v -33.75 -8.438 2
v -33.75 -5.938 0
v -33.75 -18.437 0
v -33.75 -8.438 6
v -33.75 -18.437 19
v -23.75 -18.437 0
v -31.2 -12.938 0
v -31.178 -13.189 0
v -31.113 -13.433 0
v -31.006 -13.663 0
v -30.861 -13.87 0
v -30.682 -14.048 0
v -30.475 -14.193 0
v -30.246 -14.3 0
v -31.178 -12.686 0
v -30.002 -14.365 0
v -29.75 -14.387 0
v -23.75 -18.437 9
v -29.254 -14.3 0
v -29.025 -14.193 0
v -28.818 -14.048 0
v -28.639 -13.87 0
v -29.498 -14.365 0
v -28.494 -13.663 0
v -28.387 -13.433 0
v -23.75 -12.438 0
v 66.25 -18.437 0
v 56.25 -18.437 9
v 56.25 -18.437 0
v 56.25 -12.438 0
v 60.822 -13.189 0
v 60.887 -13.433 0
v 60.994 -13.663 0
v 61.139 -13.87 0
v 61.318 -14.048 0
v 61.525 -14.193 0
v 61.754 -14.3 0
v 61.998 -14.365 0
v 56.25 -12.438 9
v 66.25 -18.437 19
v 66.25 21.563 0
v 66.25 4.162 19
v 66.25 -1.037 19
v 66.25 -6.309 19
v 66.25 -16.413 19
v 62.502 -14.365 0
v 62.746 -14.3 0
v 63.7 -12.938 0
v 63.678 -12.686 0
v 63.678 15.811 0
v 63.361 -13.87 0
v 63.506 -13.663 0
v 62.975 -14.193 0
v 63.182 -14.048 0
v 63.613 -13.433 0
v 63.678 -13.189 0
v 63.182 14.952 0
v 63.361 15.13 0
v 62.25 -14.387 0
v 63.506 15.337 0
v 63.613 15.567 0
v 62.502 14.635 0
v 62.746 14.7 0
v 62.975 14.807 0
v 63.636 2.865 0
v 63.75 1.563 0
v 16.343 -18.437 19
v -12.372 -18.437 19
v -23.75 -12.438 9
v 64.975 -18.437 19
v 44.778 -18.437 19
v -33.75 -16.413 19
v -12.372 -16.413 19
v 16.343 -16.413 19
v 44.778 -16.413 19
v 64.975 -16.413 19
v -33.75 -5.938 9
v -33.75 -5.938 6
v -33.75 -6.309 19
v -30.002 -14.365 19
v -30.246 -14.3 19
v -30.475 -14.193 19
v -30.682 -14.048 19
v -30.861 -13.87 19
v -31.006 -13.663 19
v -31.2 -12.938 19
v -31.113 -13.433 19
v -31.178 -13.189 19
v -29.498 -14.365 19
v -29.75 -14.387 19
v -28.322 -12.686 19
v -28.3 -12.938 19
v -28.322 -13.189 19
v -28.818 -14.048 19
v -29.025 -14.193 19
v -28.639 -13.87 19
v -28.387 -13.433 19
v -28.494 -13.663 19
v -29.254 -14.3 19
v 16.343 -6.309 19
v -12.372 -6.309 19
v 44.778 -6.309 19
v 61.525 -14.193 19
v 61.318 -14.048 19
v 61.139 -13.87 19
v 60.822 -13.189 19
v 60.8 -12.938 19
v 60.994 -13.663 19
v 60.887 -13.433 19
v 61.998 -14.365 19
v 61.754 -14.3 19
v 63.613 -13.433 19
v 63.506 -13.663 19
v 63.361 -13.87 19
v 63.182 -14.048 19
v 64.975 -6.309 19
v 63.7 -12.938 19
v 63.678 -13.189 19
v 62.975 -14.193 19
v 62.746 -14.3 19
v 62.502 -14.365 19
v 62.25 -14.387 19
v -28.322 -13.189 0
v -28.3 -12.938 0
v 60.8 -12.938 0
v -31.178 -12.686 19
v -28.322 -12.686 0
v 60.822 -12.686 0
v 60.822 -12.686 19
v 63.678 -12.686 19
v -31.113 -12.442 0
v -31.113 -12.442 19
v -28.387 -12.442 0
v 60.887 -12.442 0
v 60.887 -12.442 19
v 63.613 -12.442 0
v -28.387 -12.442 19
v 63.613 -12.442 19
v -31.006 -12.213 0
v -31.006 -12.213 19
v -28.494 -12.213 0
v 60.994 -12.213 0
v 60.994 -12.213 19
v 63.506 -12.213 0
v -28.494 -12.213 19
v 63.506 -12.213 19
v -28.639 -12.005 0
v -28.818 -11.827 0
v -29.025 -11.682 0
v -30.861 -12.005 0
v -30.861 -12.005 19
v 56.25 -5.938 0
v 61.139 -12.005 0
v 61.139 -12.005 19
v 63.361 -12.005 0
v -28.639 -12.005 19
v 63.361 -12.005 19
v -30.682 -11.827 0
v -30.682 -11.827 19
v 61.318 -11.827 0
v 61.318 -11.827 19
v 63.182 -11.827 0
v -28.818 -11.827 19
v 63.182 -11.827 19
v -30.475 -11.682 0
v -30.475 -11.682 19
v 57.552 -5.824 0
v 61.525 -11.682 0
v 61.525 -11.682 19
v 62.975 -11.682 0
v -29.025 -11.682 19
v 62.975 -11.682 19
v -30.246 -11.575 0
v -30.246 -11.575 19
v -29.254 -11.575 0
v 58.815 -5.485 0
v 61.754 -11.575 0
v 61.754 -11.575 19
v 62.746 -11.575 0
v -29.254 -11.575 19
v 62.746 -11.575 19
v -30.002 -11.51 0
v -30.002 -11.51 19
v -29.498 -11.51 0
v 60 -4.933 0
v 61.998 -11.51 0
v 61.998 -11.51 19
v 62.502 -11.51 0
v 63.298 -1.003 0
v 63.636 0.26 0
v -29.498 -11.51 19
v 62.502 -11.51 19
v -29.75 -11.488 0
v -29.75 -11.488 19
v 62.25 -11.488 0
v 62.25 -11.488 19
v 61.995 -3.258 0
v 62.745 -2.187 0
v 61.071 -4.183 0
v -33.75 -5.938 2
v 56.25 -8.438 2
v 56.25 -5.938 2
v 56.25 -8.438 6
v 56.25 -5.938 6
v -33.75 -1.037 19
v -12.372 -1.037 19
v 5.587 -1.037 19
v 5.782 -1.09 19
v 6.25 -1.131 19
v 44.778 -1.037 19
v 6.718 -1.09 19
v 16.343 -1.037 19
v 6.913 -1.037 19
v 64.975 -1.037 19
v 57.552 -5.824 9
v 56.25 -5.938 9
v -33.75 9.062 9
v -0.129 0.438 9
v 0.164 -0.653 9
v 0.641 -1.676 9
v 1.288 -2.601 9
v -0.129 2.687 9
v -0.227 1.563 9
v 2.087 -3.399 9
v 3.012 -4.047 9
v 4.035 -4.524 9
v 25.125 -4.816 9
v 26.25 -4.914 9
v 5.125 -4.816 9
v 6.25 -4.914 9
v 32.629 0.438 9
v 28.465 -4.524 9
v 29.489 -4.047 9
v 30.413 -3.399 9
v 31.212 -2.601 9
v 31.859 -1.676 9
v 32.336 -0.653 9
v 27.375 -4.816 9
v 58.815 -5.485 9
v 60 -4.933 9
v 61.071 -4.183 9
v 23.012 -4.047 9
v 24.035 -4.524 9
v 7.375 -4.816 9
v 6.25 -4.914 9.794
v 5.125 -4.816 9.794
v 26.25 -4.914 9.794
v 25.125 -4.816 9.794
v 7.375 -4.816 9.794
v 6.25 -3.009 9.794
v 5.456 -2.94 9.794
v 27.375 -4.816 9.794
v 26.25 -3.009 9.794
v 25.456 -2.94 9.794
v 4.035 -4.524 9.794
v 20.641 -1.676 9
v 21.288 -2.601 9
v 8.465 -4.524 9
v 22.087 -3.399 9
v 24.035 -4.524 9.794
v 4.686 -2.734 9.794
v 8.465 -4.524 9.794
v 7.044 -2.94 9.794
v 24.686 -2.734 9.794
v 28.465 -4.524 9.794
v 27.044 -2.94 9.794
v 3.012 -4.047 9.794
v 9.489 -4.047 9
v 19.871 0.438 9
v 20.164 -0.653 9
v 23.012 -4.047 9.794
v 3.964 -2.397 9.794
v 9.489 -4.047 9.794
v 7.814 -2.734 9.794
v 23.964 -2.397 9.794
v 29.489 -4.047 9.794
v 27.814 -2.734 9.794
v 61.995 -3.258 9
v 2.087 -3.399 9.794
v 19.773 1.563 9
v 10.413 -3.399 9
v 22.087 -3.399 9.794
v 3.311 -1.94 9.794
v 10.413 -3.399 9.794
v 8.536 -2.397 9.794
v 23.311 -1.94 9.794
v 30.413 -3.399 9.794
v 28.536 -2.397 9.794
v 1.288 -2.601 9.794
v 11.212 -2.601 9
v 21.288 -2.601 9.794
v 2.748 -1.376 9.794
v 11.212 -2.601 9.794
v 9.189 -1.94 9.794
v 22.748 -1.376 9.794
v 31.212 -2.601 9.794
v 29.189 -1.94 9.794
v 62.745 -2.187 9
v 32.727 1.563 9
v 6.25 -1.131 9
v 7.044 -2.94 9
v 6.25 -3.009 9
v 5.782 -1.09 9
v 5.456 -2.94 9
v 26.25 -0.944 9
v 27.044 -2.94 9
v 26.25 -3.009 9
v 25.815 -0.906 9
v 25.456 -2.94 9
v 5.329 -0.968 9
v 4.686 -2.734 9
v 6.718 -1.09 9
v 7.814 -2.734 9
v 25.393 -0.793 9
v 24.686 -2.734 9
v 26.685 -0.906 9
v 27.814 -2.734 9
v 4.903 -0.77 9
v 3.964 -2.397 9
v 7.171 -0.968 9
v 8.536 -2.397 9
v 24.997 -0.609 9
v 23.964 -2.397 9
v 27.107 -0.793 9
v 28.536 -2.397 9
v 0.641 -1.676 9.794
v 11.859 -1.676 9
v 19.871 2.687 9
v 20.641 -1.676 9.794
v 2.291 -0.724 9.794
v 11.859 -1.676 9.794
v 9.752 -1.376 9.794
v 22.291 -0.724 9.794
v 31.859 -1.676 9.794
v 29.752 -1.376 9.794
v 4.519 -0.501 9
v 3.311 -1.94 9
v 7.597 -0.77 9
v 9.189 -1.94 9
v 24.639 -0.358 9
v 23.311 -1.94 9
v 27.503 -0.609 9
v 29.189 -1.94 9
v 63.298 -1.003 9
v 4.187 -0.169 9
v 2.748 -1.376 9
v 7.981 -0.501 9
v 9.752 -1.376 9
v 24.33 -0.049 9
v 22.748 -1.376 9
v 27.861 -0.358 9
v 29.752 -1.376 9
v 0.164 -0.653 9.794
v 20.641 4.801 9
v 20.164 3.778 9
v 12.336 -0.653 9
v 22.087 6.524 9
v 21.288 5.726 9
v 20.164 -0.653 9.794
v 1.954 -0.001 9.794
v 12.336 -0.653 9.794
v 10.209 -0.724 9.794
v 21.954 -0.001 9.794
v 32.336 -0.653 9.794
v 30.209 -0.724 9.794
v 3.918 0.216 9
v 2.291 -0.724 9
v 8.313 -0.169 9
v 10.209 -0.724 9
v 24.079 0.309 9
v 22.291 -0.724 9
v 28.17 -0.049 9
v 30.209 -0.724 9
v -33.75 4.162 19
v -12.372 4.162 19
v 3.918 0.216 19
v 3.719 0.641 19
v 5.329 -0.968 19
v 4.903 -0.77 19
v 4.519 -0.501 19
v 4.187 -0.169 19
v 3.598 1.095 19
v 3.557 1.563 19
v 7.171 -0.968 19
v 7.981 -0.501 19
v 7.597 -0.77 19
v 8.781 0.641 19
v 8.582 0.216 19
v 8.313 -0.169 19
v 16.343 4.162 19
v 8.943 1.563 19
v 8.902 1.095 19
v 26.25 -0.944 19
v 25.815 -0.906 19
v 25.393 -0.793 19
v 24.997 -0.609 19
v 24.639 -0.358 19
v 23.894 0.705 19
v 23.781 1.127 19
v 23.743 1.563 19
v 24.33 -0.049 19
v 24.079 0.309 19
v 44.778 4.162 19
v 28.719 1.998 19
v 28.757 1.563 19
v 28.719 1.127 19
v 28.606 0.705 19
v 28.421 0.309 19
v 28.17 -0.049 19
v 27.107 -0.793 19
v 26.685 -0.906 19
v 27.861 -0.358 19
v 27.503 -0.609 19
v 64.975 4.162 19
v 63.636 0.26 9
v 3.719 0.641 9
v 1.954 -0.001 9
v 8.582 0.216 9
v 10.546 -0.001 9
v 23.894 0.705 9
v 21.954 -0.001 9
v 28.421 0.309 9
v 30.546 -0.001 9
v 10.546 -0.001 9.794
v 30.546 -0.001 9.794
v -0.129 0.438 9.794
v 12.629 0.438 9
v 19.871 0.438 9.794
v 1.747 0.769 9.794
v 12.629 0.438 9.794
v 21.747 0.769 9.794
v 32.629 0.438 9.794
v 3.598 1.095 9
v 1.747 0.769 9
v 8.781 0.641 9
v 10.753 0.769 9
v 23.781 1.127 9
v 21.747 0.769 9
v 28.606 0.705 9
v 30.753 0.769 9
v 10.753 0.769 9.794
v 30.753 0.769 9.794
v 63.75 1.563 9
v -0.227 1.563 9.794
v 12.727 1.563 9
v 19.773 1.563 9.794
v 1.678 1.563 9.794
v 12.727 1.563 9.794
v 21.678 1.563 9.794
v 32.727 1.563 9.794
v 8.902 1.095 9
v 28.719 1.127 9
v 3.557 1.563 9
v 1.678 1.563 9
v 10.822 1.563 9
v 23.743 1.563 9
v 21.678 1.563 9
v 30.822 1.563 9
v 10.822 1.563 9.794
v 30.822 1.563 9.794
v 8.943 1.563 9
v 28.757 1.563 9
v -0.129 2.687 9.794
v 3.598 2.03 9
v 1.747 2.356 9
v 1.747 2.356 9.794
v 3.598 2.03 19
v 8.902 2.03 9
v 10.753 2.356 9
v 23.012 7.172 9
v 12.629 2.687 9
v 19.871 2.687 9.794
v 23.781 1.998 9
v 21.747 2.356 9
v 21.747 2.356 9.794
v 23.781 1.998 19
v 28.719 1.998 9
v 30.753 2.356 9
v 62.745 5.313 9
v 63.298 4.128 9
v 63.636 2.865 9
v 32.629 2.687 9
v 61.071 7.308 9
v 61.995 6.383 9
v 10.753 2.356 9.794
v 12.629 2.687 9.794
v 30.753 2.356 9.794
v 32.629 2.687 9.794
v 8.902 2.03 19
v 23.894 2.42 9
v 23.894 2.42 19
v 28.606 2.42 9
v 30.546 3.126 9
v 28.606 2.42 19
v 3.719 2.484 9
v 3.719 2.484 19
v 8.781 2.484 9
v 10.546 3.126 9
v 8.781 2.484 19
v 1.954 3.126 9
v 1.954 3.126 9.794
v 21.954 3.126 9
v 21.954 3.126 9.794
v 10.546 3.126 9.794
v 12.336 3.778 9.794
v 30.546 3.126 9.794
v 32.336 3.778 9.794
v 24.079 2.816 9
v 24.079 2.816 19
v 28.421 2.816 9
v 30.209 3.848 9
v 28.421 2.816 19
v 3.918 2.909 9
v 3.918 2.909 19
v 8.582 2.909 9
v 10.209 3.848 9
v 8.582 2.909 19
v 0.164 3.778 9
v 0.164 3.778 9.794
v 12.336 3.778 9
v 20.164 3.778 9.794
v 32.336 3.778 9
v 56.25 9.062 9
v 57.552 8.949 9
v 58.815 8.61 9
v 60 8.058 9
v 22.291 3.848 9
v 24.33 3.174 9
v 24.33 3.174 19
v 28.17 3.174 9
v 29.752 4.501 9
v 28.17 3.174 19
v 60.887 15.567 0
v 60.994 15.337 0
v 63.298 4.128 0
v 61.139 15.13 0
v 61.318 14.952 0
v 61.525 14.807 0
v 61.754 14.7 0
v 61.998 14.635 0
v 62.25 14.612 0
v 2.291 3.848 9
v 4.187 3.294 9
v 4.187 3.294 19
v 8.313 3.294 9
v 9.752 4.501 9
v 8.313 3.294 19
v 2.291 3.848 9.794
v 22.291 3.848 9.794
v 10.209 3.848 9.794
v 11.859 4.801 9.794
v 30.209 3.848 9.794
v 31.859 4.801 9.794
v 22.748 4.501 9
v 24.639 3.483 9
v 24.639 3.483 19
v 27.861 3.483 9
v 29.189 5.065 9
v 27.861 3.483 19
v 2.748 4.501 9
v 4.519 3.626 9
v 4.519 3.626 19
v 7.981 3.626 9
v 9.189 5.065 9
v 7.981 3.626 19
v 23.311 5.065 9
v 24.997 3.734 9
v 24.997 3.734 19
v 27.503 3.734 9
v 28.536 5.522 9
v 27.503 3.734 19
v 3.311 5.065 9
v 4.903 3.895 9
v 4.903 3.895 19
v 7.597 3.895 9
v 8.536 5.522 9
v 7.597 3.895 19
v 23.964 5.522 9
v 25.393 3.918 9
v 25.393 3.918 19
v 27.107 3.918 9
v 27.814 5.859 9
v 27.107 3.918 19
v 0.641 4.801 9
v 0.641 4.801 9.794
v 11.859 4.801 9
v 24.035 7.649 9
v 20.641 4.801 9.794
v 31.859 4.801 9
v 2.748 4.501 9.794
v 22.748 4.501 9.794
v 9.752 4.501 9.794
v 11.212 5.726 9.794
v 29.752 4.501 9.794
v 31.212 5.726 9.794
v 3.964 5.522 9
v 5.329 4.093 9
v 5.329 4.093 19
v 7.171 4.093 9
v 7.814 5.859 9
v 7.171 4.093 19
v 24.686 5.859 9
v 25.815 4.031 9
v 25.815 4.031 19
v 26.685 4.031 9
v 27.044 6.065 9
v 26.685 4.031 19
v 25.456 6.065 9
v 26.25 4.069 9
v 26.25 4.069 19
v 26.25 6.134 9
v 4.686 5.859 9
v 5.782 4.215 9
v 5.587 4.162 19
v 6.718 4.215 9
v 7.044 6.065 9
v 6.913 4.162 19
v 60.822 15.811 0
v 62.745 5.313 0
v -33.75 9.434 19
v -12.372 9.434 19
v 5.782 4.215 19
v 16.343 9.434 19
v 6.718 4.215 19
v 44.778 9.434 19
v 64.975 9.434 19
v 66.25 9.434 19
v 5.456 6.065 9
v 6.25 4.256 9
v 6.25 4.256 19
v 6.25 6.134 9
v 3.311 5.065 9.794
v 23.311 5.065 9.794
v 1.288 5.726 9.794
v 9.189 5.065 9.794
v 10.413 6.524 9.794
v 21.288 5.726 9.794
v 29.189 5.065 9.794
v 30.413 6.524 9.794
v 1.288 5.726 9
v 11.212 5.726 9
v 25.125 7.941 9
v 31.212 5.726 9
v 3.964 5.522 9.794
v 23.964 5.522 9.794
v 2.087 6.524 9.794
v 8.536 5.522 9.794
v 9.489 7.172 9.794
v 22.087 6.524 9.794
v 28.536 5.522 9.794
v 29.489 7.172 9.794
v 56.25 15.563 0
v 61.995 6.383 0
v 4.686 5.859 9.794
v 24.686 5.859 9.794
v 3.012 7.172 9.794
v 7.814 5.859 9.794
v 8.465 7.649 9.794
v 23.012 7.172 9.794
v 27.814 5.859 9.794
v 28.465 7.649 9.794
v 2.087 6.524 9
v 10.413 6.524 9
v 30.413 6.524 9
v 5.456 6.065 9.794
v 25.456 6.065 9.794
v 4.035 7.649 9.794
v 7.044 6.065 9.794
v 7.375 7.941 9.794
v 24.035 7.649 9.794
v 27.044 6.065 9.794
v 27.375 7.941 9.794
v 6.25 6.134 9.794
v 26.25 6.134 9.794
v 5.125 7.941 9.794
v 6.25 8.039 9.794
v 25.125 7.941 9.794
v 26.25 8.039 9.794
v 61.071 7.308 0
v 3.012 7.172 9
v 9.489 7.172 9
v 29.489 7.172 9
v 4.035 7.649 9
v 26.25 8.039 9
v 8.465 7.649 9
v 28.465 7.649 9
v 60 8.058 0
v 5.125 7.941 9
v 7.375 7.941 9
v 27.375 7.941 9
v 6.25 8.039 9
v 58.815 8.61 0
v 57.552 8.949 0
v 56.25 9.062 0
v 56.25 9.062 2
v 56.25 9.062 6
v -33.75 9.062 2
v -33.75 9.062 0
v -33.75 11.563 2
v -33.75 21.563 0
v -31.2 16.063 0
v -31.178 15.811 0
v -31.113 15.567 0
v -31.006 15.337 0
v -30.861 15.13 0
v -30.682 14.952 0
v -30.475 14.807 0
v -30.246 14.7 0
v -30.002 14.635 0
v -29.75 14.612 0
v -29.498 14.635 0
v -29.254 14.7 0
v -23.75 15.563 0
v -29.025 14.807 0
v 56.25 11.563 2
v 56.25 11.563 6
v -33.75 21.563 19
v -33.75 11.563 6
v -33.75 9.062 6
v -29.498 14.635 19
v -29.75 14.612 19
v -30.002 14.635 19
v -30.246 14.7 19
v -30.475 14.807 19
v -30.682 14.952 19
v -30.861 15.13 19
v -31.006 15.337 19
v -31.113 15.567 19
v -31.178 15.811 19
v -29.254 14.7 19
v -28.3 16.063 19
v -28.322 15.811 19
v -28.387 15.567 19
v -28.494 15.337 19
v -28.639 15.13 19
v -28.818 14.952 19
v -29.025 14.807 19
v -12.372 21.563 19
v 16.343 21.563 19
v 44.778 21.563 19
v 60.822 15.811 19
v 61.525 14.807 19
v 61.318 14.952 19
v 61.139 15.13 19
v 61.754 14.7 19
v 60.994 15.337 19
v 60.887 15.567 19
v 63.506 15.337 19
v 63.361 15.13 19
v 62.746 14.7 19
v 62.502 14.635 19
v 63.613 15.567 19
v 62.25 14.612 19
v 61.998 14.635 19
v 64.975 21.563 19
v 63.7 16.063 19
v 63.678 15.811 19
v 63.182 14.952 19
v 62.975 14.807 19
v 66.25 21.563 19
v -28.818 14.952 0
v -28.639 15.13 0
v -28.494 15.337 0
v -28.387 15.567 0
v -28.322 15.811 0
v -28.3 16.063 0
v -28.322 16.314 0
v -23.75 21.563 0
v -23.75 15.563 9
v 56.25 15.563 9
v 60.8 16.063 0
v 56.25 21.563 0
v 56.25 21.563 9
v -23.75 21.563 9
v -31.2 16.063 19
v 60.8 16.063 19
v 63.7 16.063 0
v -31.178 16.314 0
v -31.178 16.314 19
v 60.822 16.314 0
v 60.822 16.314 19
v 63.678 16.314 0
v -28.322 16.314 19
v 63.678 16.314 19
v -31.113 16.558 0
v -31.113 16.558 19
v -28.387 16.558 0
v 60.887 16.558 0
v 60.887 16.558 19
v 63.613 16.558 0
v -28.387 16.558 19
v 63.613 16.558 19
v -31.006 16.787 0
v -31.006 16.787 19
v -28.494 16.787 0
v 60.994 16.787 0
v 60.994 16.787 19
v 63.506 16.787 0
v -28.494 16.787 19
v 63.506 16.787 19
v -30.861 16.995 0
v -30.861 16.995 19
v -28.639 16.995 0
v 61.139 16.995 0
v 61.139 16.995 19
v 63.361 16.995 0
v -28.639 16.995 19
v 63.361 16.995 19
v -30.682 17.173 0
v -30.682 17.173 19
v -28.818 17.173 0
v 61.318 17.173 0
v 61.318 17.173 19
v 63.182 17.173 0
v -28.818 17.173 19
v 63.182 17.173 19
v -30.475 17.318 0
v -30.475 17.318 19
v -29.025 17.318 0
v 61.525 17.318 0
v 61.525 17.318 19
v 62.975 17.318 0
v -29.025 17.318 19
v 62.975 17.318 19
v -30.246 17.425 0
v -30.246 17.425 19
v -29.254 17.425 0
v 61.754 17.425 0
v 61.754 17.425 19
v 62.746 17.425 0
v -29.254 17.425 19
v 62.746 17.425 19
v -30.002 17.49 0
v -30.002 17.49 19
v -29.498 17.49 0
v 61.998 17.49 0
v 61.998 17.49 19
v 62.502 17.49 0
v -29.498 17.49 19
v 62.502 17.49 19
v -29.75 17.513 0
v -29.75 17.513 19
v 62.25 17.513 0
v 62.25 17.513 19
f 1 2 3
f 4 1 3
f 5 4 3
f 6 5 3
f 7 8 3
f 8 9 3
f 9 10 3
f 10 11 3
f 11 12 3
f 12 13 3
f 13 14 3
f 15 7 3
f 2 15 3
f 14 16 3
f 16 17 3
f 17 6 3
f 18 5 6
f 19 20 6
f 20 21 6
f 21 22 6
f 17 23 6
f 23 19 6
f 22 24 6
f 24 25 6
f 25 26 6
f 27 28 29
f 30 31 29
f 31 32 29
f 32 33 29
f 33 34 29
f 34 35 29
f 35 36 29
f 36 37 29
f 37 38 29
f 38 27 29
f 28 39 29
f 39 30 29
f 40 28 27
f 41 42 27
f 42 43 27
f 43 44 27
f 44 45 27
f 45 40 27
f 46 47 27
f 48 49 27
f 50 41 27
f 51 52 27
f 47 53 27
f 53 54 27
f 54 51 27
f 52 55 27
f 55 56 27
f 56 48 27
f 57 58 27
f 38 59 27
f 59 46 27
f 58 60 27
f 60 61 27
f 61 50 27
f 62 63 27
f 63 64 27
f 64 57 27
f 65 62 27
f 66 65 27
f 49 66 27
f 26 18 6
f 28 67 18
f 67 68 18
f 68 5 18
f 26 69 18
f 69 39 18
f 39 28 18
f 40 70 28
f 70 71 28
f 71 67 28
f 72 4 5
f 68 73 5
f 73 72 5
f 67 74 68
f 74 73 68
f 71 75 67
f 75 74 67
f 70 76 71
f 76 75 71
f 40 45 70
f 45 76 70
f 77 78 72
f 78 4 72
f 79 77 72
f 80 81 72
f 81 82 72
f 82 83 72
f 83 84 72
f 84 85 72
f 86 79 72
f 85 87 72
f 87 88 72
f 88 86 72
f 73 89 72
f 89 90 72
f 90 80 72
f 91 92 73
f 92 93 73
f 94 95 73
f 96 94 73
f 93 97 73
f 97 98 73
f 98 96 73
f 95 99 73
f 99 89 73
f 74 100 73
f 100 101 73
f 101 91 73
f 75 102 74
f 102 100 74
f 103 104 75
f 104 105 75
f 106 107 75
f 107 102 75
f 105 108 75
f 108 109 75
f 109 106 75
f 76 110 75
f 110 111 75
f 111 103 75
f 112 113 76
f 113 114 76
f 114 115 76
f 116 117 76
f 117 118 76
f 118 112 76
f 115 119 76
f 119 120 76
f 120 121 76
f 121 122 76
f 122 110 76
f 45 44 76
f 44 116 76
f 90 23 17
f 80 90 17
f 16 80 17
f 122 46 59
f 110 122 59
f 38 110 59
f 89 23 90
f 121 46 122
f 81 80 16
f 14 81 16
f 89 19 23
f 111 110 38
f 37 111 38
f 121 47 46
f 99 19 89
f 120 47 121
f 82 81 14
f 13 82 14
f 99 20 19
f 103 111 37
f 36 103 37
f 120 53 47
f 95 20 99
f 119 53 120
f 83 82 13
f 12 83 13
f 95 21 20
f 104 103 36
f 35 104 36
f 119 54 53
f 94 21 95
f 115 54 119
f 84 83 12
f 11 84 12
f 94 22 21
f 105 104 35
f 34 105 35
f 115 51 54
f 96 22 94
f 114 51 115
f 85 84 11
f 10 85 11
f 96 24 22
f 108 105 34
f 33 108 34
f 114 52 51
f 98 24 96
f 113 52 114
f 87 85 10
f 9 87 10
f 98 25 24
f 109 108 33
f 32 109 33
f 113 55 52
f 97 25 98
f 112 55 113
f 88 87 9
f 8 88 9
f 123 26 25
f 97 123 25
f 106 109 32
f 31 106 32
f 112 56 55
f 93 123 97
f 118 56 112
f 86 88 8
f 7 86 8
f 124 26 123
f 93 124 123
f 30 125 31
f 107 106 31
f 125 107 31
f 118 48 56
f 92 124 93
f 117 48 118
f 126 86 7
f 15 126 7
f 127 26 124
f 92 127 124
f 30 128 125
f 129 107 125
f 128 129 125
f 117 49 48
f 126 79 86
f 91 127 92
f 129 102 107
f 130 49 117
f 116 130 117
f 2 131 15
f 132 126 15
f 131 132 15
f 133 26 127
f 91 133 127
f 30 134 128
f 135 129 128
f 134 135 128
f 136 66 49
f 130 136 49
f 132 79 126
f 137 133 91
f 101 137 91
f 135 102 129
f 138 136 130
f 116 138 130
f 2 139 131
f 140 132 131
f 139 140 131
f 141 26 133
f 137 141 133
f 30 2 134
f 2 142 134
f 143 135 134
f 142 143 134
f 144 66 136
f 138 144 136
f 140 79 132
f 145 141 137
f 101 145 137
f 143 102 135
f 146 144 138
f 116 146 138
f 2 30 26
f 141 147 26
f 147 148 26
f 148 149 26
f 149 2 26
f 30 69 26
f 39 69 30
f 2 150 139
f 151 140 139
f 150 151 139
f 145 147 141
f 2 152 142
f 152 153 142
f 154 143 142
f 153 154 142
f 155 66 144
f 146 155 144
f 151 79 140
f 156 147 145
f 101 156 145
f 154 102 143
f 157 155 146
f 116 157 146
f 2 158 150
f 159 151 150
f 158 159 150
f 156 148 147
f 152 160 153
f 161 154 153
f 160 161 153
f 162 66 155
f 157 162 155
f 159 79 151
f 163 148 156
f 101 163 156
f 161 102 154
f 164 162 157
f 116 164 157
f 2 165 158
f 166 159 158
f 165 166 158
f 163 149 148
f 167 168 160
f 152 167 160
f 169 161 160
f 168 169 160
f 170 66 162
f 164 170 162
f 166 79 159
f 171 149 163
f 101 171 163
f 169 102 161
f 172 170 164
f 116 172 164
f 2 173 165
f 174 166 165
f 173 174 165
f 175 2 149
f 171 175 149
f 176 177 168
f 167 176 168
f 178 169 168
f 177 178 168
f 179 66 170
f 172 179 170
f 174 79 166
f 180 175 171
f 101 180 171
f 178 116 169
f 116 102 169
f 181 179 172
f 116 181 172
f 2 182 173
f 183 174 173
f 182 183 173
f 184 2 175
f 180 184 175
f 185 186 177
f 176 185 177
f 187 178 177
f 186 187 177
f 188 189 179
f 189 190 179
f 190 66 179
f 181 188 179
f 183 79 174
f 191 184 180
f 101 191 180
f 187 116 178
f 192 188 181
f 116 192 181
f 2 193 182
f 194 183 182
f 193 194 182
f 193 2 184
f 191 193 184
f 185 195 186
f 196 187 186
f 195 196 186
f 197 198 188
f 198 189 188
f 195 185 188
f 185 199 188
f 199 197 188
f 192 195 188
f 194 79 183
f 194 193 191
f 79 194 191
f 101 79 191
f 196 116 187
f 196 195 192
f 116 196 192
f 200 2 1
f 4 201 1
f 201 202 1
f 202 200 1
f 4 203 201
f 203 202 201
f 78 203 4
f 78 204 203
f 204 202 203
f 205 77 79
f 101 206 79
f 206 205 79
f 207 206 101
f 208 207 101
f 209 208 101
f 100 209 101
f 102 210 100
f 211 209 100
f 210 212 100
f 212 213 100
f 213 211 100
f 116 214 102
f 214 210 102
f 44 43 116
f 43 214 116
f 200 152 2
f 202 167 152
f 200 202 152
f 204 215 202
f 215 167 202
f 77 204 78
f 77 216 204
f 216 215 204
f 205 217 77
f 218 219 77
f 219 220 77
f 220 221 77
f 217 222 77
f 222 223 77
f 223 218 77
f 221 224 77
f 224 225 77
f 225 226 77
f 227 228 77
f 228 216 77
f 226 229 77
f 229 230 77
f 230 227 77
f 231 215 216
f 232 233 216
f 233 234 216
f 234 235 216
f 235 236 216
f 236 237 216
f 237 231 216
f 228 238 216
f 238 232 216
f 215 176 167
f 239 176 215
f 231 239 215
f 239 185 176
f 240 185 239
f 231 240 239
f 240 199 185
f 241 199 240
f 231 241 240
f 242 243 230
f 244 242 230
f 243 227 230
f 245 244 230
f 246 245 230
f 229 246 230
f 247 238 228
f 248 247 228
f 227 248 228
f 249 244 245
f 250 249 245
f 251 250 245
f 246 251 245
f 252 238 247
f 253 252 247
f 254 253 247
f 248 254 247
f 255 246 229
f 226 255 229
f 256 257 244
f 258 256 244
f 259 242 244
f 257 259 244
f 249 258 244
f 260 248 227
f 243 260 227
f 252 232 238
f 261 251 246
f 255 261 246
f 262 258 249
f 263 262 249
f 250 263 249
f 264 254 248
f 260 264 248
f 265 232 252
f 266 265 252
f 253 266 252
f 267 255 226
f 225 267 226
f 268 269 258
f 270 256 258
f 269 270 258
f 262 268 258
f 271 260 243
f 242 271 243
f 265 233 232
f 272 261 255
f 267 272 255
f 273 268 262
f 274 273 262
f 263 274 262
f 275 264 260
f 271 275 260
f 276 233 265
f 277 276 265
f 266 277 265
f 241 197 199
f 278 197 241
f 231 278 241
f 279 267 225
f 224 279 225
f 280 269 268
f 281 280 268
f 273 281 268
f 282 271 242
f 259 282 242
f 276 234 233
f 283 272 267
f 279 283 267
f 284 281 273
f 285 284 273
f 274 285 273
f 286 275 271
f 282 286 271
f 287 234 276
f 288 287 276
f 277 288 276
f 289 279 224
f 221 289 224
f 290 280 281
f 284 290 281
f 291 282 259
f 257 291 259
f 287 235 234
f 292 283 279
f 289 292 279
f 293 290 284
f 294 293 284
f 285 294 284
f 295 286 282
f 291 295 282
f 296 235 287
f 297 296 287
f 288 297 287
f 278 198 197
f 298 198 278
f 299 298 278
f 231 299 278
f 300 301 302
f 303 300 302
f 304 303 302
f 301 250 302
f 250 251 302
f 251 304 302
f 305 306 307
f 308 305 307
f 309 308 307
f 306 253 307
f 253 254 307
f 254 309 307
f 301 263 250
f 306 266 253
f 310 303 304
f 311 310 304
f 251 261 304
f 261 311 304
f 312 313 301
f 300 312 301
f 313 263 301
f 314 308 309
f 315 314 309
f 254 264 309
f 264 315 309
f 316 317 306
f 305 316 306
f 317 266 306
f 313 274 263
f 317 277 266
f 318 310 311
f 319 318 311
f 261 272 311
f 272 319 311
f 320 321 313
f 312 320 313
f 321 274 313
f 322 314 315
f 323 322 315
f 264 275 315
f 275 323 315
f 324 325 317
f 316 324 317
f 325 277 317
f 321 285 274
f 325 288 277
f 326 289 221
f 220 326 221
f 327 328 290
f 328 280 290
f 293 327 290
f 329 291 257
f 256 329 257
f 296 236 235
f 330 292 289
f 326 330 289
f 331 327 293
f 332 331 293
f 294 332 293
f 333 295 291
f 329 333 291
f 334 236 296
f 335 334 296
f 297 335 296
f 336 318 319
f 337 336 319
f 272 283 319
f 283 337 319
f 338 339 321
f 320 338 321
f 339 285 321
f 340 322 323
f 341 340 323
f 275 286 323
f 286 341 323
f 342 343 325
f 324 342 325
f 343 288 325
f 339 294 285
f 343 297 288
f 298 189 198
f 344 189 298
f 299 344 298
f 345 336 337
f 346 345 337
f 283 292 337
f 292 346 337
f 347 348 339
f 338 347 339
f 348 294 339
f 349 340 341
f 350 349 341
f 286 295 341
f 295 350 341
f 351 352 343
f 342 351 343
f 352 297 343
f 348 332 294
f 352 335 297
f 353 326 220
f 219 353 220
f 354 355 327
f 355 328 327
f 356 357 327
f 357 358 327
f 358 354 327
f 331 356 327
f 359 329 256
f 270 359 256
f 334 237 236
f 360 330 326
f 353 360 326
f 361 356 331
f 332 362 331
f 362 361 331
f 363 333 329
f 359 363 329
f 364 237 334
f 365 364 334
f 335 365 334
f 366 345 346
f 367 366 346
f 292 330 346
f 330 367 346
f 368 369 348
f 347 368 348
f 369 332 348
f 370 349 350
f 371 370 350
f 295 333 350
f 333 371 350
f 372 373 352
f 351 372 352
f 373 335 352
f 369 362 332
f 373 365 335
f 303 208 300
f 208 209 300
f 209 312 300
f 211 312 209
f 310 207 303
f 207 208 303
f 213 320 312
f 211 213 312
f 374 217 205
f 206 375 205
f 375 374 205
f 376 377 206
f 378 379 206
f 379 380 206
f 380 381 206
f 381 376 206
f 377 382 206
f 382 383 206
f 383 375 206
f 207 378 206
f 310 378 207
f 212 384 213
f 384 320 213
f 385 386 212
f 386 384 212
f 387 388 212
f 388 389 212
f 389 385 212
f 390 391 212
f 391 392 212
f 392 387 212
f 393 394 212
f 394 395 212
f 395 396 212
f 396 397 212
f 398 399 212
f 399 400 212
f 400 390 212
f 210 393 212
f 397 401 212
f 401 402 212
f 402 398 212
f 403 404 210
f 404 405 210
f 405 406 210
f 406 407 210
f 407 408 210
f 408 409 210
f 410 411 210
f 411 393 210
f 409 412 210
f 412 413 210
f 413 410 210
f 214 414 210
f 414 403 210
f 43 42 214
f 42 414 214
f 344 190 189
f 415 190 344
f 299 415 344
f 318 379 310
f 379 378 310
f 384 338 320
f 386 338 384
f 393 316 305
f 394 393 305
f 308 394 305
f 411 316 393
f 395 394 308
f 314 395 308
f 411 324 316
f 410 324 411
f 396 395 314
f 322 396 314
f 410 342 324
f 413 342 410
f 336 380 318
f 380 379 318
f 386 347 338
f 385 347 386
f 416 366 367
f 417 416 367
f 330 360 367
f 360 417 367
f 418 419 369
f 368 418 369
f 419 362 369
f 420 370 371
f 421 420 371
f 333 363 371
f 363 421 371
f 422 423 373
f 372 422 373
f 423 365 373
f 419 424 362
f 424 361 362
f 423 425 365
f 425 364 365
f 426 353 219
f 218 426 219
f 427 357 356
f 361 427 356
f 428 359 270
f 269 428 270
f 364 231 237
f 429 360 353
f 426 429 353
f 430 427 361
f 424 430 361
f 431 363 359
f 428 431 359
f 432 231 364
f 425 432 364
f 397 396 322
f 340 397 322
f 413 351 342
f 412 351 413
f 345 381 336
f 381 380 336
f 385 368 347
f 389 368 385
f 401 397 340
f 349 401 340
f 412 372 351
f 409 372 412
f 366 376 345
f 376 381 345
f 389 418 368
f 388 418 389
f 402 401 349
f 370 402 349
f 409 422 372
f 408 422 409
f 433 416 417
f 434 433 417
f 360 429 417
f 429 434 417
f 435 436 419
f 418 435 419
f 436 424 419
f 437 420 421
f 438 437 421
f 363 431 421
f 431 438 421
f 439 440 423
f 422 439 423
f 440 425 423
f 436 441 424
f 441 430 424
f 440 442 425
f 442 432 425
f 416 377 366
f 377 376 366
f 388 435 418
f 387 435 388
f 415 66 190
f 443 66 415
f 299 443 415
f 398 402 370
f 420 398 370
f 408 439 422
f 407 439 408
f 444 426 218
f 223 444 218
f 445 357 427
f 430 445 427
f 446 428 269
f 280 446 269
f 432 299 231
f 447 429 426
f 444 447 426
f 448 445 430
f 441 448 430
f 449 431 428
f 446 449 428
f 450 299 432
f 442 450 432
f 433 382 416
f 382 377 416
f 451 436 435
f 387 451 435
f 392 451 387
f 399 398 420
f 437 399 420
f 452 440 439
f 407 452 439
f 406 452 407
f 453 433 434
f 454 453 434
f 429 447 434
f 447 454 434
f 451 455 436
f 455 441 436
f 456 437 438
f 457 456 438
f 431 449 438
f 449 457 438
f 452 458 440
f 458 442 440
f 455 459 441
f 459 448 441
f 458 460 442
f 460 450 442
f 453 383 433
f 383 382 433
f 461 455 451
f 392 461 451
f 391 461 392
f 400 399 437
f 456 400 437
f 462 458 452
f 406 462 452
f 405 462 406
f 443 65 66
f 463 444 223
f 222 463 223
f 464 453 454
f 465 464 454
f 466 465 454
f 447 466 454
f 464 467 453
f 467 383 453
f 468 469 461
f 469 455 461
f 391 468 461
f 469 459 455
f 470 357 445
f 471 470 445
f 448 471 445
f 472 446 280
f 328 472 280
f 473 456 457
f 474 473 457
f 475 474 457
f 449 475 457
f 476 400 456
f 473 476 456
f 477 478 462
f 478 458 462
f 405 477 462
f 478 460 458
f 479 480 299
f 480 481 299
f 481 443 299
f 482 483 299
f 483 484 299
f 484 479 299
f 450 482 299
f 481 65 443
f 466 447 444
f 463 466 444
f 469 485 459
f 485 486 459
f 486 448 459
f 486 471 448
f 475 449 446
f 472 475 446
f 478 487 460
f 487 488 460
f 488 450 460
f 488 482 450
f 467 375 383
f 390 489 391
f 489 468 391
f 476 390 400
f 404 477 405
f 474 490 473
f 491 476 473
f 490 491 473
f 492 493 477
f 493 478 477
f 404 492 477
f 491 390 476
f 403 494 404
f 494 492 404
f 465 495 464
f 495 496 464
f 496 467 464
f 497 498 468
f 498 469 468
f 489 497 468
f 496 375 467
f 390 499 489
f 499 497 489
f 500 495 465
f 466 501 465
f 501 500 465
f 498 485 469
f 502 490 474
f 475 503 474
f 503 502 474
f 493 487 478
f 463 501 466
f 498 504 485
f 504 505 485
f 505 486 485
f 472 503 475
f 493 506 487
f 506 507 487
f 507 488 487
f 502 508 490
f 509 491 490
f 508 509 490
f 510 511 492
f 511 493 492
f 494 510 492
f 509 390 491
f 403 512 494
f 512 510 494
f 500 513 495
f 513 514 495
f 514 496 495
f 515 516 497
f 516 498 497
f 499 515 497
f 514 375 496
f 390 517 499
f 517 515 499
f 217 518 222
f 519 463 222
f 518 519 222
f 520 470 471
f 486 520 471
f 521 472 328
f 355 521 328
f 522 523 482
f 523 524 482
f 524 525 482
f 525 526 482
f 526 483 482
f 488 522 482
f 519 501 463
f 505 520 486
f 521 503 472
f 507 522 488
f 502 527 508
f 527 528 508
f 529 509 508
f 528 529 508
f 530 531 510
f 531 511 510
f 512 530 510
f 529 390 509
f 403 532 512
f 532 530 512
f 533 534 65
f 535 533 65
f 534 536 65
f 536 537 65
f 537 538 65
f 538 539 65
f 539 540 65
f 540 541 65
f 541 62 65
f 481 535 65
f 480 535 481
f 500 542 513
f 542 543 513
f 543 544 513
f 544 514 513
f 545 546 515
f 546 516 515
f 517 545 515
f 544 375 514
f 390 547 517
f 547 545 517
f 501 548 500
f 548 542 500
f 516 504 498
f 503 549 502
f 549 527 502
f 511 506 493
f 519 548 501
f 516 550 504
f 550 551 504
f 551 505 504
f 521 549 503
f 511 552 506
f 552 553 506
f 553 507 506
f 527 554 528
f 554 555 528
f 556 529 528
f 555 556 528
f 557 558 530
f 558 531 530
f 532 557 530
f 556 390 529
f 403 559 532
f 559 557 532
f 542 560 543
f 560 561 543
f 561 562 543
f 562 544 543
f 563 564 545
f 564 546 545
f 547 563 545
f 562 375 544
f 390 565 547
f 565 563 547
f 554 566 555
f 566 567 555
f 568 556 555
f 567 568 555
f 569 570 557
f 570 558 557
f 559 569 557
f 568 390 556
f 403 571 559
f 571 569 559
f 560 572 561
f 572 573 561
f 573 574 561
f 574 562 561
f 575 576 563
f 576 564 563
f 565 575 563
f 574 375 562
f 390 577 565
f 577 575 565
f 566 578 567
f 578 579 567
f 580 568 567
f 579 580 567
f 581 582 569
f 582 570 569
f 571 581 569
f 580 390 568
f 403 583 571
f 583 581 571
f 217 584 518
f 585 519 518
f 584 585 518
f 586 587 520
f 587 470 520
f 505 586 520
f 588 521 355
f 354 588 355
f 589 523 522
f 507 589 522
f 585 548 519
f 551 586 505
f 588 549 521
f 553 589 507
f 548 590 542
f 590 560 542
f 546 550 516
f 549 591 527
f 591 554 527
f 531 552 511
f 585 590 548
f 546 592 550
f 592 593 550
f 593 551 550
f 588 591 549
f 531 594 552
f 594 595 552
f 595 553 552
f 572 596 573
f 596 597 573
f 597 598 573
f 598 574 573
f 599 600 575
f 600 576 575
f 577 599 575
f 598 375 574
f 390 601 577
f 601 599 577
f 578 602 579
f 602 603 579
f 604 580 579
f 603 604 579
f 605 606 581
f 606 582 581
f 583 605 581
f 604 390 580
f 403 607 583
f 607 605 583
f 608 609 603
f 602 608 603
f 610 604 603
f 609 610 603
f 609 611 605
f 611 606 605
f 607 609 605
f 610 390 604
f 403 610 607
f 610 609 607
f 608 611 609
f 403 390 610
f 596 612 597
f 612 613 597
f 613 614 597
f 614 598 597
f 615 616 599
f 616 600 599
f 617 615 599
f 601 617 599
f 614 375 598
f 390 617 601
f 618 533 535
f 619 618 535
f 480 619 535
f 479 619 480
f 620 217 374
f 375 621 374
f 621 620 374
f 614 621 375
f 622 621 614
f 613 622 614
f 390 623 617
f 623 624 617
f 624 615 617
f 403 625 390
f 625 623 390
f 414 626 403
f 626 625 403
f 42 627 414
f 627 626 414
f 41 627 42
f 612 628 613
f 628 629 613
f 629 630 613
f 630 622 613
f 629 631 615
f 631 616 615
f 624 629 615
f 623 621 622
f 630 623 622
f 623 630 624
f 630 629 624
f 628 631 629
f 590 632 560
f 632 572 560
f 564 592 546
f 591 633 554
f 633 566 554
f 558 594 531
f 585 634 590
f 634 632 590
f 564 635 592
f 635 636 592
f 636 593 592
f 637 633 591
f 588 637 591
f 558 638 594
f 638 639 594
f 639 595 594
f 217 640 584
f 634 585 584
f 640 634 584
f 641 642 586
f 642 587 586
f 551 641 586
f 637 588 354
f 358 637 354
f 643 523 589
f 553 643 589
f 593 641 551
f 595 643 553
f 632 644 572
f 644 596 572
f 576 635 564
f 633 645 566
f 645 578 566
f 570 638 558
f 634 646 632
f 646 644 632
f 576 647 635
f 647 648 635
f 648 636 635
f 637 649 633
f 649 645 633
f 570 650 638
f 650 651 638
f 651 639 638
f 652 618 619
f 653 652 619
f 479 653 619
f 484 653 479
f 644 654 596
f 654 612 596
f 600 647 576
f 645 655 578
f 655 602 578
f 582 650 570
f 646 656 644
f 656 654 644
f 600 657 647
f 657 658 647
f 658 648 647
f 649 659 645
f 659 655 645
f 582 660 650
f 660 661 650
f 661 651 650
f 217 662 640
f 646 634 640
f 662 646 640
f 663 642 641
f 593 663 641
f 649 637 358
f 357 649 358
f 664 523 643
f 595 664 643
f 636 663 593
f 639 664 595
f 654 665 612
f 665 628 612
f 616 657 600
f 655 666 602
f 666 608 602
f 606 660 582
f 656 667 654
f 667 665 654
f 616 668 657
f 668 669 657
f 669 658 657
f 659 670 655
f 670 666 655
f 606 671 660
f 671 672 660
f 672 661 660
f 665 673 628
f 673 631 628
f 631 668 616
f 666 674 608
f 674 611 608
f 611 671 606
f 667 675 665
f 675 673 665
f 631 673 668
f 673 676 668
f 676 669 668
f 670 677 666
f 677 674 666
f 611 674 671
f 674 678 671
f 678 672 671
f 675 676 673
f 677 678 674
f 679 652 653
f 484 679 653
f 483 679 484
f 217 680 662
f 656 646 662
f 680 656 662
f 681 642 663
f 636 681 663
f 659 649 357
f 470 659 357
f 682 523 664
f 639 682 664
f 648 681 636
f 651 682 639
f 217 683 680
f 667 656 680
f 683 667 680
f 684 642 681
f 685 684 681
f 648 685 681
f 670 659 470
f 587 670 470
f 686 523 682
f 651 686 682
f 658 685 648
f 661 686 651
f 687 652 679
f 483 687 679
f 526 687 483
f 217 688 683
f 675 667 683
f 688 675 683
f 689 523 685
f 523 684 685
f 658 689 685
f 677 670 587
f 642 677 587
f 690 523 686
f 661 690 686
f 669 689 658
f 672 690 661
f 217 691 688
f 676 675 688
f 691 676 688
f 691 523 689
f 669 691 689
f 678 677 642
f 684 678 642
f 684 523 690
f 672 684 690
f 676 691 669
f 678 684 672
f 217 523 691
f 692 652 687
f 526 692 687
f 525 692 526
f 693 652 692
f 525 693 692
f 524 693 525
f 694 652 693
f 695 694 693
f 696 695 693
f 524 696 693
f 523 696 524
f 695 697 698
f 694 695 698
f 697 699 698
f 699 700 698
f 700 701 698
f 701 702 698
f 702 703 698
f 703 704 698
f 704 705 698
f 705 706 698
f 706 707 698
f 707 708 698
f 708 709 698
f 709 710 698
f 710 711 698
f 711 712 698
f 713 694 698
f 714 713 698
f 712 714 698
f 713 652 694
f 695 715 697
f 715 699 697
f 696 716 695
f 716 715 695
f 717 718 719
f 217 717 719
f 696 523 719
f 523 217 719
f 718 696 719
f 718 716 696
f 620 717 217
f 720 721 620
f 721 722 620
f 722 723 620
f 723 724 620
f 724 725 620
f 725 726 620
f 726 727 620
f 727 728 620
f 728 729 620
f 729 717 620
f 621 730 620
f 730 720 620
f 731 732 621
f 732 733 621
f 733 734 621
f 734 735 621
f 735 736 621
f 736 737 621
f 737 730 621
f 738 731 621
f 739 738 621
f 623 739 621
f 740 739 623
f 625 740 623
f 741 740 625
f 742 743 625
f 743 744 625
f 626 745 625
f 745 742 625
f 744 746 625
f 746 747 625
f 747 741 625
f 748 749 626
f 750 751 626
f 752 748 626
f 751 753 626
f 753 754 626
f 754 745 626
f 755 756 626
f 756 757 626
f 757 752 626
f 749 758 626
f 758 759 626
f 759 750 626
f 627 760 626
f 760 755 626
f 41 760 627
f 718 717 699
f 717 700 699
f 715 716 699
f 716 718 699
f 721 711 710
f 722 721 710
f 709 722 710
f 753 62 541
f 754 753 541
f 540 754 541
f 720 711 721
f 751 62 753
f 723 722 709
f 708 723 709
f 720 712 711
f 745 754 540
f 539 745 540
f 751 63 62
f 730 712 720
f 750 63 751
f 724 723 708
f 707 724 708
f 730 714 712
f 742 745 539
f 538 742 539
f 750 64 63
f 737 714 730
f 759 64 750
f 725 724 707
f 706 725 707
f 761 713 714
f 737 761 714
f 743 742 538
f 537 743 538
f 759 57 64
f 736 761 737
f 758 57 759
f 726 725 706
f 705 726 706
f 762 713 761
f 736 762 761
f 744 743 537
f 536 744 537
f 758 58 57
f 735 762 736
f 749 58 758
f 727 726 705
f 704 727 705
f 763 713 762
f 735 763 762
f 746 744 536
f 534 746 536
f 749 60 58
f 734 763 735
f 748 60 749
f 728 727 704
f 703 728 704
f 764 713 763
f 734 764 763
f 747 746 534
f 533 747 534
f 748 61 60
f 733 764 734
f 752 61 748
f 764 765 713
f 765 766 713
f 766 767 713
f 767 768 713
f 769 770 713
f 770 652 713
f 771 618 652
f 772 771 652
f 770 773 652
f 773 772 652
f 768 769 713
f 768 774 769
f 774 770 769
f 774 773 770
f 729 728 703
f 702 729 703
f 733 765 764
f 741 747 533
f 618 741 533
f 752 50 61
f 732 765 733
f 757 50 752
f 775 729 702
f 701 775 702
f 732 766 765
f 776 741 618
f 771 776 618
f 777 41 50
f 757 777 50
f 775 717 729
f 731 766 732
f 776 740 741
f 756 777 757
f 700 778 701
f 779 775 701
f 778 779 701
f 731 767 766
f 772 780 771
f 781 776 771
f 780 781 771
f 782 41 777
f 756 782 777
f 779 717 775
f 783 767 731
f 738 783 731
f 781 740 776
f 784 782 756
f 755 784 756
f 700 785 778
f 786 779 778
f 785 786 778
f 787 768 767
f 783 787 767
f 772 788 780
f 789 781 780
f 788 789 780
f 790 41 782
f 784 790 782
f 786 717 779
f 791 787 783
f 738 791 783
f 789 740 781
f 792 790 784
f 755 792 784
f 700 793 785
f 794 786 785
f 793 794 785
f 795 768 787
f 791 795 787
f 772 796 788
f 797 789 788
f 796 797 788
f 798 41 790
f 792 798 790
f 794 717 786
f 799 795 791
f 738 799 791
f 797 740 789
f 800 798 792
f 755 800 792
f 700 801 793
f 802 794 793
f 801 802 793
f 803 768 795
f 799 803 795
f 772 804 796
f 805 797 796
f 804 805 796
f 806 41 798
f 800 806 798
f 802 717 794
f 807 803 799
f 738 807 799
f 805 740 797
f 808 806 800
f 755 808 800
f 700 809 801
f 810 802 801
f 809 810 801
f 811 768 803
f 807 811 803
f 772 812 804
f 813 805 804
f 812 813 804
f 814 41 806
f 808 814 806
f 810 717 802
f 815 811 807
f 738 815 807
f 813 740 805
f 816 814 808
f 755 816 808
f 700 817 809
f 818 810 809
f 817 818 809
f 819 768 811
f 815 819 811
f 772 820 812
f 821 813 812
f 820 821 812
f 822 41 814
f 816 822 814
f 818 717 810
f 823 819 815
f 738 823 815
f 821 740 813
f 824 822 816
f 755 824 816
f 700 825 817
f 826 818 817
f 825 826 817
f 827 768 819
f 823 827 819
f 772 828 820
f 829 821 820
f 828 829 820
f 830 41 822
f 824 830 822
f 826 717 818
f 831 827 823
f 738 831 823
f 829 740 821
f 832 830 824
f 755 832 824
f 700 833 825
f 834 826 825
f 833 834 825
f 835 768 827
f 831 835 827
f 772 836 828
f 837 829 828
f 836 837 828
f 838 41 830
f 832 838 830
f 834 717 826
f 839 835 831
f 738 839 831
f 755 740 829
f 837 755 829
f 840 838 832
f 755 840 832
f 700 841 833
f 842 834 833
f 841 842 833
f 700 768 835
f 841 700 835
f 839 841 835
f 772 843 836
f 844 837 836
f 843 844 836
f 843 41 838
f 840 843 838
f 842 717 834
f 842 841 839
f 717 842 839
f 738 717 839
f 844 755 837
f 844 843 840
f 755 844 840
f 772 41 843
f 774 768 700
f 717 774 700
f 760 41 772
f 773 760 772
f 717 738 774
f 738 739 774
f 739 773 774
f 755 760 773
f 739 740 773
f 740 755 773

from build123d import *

# Parameters (mm, degrees)
SKETCH1_W           = 100
SKETCH1_H           = 40
BOSS_EXTRUDE1_DEPTH = 38
CUT_EXTRUDE4_REACH  = 81.36
SKETCH4_R           = 1.45
SKETCH6_W           = 100
SKETCH6_H           = 19
CUT_EXTRUDE5_DEPTH  = 87.215210375
CUT_EXTRUDE12_DEPTH = 9
CUT_EXTRUDE13_REACH = 72.385
SKETCH18_R          = 2.506862912
SKETCH18_R_2        = 2.693115416
SKETCH19_R          = 6.477
SKETCH19_R_2        = 4.572
CUT_EXTRUDE14_DEPTH = 0.79375
SKETCH21_W          = 10
SKETCH21_H          = 15
CUT_EXTRUDE15_DEPTH = 9
SKETCH22_W          = 4
SKETCH22_H          = 2.5
CUT_EXTRUDE16_DEPTH = 90
SKETCH23_W          = 80
SKETCH23_H          = 6
CUT_EXTRUDE17_DEPTH = 9


with BuildPart() as part:
    # Sketch1 → Boss-Extrude1 (new body)
    with BuildSketch(Plane.XY):
        with Locations((16.25, 1.5625)):
            Rectangle(SKETCH1_W, SKETCH1_H)
    extrude(amount=BOSS_EXTRUDE1_DEPTH)

    # Sketch4 → Cut-Extrude4 (cut, up to next)
    with BuildSketch(Plane(origin=(0, 0, 0), x_dir=(-1, 0, 0), z_dir=(0, 0, -1)), mode=Mode.PRIVATE) as cut_extrude4_sk1:
        with Locations((-62.25, 16.0625)):
            Circle(SKETCH4_R)
    cut_extrude4_tool1 = extrude(cut_extrude4_sk1.sketch, amount=-CUT_EXTRUDE4_REACH, mode=Mode.PRIVATE) & part.part
    # Sketch4 → Cut-Extrude4 (cut, up to next)
    with BuildSketch(Plane(origin=(0, 0, 0), x_dir=(-1, 0, 0), z_dir=(0, 0, -1)), mode=Mode.PRIVATE) as cut_extrude4_sk2:
        with Locations((-62.25, -12.9375)):
            Circle(SKETCH4_R)
    cut_extrude4_tool2 = extrude(cut_extrude4_sk2.sketch, amount=-CUT_EXTRUDE4_REACH, mode=Mode.PRIVATE) & part.part
    # Sketch4 → Cut-Extrude4 (cut, up to next)
    with BuildSketch(Plane(origin=(0, 0, 0), x_dir=(-1, 0, 0), z_dir=(0, 0, -1)), mode=Mode.PRIVATE) as cut_extrude4_sk3:
        with Locations((29.75, 16.0625)):
            Circle(SKETCH4_R)
    cut_extrude4_tool3 = extrude(cut_extrude4_sk3.sketch, amount=-CUT_EXTRUDE4_REACH, mode=Mode.PRIVATE) & part.part
    # Sketch4 → Cut-Extrude4 (cut, up to next)
    with BuildSketch(Plane(origin=(0, 0, 0), x_dir=(-1, 0, 0), z_dir=(0, 0, -1)), mode=Mode.PRIVATE) as cut_extrude4_sk4:
        with Locations((29.75, -12.9375)):
            Circle(SKETCH4_R)
    cut_extrude4_tool4 = extrude(cut_extrude4_sk4.sketch, amount=-CUT_EXTRUDE4_REACH, mode=Mode.PRIVATE) & part.part
    add(cut_extrude4_tool1.solids().sort_by_distance((62.25, 16.0625, 0))[0], mode=Mode.SUBTRACT)
    add(cut_extrude4_tool2.solids().sort_by_distance((62.25, -12.9375, 0))[0], mode=Mode.SUBTRACT)
    add(cut_extrude4_tool3.solids().sort_by_distance((-29.75, 16.0625, 0))[0], mode=Mode.SUBTRACT)
    add(cut_extrude4_tool4.solids().sort_by_distance((-29.75, -12.9375, 0))[0], mode=Mode.SUBTRACT)

    # Sketch6 → Cut-Extrude5 (cut, through all)
    with BuildSketch(Plane(origin=(0, 21.5625, 0), x_dir=(1, 0, 0), z_dir=(0, 1, 0))):
        with Locations((16.25, -28.5)):
            Rectangle(SKETCH6_W, SKETCH6_H)
    extrude(amount=-CUT_EXTRUDE5_DEPTH, mode=Mode.SUBTRACT)

    # Sketch17 → Cut-Extrude12 (cut)
    with BuildSketch(Plane(origin=(0, 0, 0), x_dir=(-1, 0, 0), z_dir=(0, 0, -1))):
        with BuildLine():
            Line((-56.25, 9.0625), (23.75, 9.0625))
            ThreePointArc((23.75, 9.0625), (31.25, 1.5625), (23.75, -5.9375))
            Line((23.75, -5.9375), (-56.25, -5.9375))
            ThreePointArc((-56.25, -5.9375), (-63.75, 1.5625), (-56.25, 9.0625))
        make_face()
    extrude(amount=-CUT_EXTRUDE12_DEPTH, mode=Mode.SUBTRACT)

    # Sketch18 → Cut-Extrude13 (cut, up to next)
    with BuildSketch(Plane(origin=(0, 0, 9), x_dir=(-1, 0, 0), z_dir=(0, 0, -1)), mode=Mode.PRIVATE) as cut_extrude13_sk1:
        with Locations((-26.25, 1.5625)):
            Circle(SKETCH18_R)
    cut_extrude13_tool1 = extrude(cut_extrude13_sk1.sketch, amount=-CUT_EXTRUDE13_REACH, mode=Mode.PRIVATE) & part.part
    # Sketch18 → Cut-Extrude13 (cut, up to next)
    with BuildSketch(Plane(origin=(0, 0, 9), x_dir=(-1, 0, 0), z_dir=(0, 0, -1)), mode=Mode.PRIVATE) as cut_extrude13_sk2:
        with Locations((-6.25, 1.5625)):
            Circle(SKETCH18_R_2)
    cut_extrude13_tool2 = extrude(cut_extrude13_sk2.sketch, amount=-CUT_EXTRUDE13_REACH, mode=Mode.PRIVATE) & part.part
    add(cut_extrude13_tool1.solids().sort_by_distance((26.25, 1.5625, 9))[0], mode=Mode.SUBTRACT)
    add(cut_extrude13_tool2.solids().sort_by_distance((6.25, 1.5625, 9))[0], mode=Mode.SUBTRACT)

    # Sketch19 → Cut-Extrude14 (cut)
    # profile 1 of 2: a face of its own
    with BuildSketch(Plane(origin=(0, 0, 9), x_dir=(-1, 0, 0), z_dir=(0, 0, -1))):
        with Locations((-26.25, 1.5625)):
            Circle(SKETCH19_R)
        with Locations((-26.25, 1.5625)):
            Circle(SKETCH19_R_2, mode=Mode.SUBTRACT)
    # profile 2 of 2: a face of its own
    with BuildSketch(Plane(origin=(0, 0, 9), x_dir=(-1, 0, 0), z_dir=(0, 0, -1))):
        with Locations((-6.25, 1.5625)):
            Circle(SKETCH19_R)
        with Locations((-6.25, 1.5625)):
            Circle(SKETCH19_R_2, mode=Mode.SUBTRACT)
    extrude(amount=-CUT_EXTRUDE14_DEPTH, mode=Mode.SUBTRACT)

    # Sketch21 → Cut-Extrude15 (cut)
    with BuildSketch(Plane(origin=(0, 0, 0), x_dir=(-1, 0, 0), z_dir=(0, 0, -1))):
        with Locations((28.75, 1.5625)):
            Rectangle(SKETCH21_W, SKETCH21_H)
    extrude(amount=-CUT_EXTRUDE15_DEPTH, mode=Mode.SUBTRACT)

    # Sketch22 → Cut-Extrude16 (cut)
    with BuildSketch(Plane.ZY.offset(33.75)):
        with Locations((4, 10.3125)):
            Rectangle(SKETCH22_W, SKETCH22_H)
        with Locations((4, -7.1875)):
            Rectangle(SKETCH22_W, SKETCH22_H)
    extrude(amount=-CUT_EXTRUDE16_DEPTH, mode=Mode.SUBTRACT)

    # Sketch23 → Cut-Extrude17 (cut)
    with BuildSketch(Plane(origin=(0, 0, 0), x_dir=(-1, 0, 0), z_dir=(0, 0, -1))):
        with Locations((-16.25, 18.5625)):
            Rectangle(SKETCH23_W, SKETCH23_H)
        with Locations((-16.25, -15.4375)):
            Rectangle(SKETCH23_W, SKETCH23_H)
    extrude(amount=-CUT_EXTRUDE17_DEPTH, mode=Mode.SUBTRACT)


solid = part.part
